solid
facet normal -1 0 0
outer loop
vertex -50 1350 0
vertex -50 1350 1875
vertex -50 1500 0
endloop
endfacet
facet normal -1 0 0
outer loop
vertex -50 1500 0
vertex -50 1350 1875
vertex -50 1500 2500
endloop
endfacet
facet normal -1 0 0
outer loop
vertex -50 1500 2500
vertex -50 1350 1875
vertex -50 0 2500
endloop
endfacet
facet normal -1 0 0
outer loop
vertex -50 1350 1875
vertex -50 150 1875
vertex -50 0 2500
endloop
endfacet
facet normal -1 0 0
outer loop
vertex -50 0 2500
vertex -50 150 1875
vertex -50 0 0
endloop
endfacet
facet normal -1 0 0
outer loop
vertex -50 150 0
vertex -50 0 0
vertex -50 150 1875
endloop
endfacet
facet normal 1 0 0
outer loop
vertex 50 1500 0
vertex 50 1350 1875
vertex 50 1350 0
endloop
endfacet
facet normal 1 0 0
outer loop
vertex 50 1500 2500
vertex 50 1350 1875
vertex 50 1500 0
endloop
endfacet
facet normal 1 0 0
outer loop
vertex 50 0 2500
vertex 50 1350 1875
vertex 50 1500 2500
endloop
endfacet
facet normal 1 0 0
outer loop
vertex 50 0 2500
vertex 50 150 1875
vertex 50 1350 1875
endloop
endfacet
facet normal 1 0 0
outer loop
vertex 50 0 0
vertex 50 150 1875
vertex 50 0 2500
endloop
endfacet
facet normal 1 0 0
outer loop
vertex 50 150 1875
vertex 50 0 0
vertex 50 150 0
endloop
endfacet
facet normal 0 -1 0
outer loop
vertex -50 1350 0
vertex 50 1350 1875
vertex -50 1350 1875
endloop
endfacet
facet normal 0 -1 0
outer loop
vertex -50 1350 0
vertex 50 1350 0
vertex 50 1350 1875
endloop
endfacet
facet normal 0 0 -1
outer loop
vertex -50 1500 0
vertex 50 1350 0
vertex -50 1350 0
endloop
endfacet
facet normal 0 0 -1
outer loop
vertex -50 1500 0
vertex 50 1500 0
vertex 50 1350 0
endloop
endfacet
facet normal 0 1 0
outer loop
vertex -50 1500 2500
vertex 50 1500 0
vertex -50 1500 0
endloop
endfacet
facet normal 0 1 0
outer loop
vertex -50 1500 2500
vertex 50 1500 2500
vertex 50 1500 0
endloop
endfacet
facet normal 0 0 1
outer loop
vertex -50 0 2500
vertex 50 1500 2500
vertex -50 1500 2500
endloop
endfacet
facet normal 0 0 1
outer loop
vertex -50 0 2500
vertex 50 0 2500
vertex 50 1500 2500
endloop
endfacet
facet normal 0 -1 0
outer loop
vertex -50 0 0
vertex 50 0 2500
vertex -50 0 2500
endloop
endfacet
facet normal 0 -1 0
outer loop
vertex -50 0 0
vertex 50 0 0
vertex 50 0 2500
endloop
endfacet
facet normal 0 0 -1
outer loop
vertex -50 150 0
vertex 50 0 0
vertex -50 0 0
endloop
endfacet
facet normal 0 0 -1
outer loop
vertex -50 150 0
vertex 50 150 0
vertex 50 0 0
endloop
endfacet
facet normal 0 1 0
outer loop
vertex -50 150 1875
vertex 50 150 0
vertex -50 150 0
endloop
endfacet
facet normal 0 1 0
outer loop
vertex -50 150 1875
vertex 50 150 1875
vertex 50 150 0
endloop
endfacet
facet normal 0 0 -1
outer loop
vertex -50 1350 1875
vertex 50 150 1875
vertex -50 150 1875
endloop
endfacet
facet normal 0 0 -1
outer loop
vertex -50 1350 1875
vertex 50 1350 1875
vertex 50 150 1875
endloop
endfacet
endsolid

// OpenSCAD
// file: templates/t_simple-door.scad
include <./basic-dims.scad>

door_width = section_width * 0.8;
door_height = section_height * 0.75;

module door_piece_sketch() {
    difference() {
        square([section_width, section_height]);

        translate([section_width/2 - door_width/2, 0, 0])
        square([door_width, door_height]);
    }   
}

module door_piece() {
    rotate([90, 0, 90])
    translate([0, 0, -section_thickness/2])
    linear_extrude(section_thickness)
    door_piece_sketch();
}
// file: templates/basic-dims.scad
unit = 1000;

section_width = unit * 1.5;
section_height = unit * 2.5;
section_thickness = unit * 0.1;

rt = sqrt(2);

//  -- Notes --
//  Z is UP
//  X is FORWARD (out of the screen)
// main file
include <./templates/basic-dims.scad>
include <./templates/t_simple-door.scad>

door_piece();
